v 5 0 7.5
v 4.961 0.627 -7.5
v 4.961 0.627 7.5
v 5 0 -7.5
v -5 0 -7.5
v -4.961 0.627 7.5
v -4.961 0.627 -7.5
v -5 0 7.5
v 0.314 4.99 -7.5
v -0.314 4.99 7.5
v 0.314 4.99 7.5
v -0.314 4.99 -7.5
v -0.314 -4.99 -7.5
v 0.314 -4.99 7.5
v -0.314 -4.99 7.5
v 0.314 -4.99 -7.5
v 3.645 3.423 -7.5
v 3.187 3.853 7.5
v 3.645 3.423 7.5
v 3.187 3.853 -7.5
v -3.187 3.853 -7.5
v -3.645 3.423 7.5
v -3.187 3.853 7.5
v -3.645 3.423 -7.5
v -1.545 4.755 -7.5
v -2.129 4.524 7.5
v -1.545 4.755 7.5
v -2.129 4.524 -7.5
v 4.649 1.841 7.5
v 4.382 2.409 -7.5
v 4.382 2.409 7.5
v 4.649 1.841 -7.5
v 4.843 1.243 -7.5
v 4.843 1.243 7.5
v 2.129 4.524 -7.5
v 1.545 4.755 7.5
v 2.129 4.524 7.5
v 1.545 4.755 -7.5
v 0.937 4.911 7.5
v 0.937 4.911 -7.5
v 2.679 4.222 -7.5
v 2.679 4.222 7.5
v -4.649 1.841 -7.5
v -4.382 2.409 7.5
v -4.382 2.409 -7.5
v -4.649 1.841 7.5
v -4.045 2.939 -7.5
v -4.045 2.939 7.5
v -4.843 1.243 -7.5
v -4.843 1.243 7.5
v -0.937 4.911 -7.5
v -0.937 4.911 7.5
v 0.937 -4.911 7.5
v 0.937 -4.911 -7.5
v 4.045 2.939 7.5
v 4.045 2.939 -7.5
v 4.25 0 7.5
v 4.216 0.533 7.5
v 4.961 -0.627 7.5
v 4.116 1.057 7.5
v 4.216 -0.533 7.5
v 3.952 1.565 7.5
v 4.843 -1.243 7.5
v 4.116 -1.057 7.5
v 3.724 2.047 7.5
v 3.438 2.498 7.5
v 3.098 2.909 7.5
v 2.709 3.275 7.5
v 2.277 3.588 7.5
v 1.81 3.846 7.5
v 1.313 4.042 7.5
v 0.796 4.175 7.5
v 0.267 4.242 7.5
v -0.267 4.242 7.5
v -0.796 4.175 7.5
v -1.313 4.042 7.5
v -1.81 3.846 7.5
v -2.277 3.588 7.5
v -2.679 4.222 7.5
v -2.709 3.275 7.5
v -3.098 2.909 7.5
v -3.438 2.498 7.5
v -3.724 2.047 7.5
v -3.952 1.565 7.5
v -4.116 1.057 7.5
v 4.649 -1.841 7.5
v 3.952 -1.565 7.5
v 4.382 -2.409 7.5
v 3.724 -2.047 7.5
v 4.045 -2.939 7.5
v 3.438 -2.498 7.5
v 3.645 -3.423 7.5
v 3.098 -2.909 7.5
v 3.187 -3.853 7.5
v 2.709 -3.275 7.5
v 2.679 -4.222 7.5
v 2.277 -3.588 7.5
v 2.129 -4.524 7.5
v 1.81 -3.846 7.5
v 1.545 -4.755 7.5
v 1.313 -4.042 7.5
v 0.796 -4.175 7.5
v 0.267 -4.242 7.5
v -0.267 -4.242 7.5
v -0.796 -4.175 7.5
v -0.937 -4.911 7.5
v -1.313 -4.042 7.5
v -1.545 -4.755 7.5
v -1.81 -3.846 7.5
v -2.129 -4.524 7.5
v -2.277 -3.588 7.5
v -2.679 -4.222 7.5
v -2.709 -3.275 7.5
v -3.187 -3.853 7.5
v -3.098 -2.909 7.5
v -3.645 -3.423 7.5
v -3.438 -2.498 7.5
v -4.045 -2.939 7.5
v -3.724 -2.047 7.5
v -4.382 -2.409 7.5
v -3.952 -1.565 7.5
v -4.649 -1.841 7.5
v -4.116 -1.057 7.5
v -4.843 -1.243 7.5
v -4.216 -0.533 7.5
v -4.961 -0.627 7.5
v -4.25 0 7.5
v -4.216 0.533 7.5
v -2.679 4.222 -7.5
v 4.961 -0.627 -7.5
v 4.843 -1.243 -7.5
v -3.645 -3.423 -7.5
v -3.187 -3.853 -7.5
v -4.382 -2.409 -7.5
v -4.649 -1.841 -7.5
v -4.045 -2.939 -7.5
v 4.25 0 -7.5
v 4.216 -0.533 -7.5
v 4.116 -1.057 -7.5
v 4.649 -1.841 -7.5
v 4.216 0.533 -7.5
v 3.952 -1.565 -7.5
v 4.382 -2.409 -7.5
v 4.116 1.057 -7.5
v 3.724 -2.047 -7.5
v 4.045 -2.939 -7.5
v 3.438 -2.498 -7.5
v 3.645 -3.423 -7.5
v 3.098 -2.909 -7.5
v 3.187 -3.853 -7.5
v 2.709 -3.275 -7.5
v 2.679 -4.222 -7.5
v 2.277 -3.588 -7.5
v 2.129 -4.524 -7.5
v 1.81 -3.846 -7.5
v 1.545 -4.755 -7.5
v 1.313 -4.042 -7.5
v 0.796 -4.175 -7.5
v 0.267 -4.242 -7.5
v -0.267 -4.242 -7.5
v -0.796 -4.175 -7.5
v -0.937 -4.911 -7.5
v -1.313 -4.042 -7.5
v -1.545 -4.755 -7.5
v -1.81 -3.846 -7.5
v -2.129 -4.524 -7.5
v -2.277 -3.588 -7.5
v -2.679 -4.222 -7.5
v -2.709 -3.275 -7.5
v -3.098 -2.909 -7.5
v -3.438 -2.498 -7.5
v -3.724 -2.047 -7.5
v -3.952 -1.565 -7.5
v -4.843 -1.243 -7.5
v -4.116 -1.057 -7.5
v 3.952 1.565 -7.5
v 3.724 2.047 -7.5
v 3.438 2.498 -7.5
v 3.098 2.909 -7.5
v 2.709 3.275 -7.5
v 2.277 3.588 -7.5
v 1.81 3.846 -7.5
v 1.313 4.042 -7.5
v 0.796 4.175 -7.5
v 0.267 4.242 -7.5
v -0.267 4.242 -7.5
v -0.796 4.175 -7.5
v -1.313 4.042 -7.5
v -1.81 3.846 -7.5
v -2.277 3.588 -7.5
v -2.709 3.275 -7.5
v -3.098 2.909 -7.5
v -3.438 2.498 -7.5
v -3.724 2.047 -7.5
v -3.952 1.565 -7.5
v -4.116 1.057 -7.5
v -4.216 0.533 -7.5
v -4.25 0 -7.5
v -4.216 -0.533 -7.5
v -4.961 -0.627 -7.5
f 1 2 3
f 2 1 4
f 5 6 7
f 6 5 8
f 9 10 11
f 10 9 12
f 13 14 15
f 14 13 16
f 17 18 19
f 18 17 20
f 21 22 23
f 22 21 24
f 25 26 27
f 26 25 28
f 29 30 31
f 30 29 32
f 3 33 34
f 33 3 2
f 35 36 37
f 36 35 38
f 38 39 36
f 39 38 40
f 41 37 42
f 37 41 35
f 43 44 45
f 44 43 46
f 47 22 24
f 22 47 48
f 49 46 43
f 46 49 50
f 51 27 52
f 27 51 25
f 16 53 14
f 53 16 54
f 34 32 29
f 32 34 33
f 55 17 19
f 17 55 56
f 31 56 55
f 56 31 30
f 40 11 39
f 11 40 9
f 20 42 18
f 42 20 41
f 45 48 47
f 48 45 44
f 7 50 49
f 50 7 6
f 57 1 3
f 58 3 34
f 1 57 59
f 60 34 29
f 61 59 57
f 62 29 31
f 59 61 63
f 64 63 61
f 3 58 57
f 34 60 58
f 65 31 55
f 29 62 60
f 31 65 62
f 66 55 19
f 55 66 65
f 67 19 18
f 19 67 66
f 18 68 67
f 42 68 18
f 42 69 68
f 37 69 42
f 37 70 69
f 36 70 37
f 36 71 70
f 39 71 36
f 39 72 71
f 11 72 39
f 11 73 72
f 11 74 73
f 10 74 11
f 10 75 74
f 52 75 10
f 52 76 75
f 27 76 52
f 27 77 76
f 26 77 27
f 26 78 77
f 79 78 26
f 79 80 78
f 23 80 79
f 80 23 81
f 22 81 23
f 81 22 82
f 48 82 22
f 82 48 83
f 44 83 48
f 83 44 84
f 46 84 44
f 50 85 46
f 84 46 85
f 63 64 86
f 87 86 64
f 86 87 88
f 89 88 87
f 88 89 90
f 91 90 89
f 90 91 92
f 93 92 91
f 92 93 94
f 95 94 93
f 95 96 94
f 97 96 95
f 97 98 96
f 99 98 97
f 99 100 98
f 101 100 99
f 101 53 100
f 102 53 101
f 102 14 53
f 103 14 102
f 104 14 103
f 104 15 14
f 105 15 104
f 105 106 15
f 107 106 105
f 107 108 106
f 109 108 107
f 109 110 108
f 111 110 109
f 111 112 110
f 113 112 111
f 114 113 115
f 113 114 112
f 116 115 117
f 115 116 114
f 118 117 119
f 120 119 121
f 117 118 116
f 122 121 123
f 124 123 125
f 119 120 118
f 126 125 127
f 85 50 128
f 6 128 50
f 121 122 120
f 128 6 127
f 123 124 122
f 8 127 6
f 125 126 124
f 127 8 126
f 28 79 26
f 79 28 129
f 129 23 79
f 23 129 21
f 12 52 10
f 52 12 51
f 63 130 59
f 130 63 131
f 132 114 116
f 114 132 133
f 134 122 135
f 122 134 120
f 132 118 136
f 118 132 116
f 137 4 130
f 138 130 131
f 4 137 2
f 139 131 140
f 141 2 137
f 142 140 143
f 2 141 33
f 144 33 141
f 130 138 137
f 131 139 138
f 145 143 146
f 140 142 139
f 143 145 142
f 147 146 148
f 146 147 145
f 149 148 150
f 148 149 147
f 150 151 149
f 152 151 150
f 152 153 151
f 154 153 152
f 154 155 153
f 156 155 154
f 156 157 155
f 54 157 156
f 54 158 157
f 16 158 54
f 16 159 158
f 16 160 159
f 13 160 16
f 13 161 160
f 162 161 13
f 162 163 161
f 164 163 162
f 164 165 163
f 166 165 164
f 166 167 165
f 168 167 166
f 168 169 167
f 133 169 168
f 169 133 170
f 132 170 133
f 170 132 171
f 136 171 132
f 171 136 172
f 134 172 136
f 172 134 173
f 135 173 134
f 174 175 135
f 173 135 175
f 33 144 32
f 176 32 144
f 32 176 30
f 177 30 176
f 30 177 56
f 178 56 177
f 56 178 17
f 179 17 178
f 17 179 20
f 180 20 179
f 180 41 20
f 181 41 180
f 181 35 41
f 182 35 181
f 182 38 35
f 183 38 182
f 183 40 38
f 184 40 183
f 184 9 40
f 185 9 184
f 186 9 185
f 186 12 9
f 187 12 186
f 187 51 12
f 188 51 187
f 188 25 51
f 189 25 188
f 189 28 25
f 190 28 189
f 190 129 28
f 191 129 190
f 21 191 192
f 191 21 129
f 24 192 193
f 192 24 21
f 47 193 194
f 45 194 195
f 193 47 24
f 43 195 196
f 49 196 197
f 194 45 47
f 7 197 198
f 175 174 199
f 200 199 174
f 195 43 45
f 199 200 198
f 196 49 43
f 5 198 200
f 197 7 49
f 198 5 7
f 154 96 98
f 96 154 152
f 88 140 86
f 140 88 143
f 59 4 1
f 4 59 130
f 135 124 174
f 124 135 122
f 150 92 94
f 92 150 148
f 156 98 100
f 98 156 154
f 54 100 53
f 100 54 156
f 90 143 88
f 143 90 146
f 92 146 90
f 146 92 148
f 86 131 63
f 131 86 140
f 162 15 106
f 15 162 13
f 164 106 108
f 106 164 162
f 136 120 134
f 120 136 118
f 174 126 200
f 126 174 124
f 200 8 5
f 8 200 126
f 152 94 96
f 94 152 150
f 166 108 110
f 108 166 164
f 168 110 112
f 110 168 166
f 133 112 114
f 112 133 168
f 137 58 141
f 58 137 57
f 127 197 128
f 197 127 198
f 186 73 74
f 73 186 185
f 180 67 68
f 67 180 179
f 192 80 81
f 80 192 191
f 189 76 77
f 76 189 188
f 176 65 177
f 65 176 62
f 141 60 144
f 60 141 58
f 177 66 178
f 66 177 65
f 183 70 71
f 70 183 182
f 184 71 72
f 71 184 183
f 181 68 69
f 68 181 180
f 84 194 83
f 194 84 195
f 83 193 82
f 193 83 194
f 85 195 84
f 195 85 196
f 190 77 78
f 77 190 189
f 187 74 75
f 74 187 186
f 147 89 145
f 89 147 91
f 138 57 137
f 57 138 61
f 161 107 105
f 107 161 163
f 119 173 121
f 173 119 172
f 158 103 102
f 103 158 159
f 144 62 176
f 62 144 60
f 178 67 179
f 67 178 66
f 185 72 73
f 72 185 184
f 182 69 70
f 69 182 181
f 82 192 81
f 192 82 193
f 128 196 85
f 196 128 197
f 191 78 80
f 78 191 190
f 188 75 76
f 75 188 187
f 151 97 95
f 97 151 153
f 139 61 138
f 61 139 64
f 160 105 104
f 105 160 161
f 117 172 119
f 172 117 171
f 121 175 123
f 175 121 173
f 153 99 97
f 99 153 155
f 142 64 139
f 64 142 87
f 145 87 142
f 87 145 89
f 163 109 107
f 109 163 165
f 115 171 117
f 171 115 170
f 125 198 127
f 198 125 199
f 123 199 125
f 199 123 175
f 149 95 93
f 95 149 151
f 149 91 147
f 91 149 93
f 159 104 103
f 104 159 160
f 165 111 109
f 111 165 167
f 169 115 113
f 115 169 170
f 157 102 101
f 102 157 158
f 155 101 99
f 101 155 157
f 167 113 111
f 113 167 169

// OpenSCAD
$fn = 50;


difference() {
	union() {
		translate(v = [0, 0, -7.5000000000]) {
			cylinder(h = 15, r = 5.0000000000);
		}
	}
	union() {
		translate(v = [0, 0, -100.0000000000]) {
			cylinder(h = 200, r = 4.2500000000);
		}
	}
}
